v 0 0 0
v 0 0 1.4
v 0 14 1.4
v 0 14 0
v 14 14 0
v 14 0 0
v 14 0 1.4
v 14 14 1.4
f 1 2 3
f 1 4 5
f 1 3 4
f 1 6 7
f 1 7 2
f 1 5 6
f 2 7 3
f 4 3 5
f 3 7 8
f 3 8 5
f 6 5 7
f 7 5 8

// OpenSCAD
/* Warning, this is a very basic generator with a lot of approximation 
input data : [LQFP, XBX, 14x14x1.4mm, 80, , B, C04-00054B]
generated by com.zoubworld.electronics.cad.model3d.Basic
Date : Sun Feb 15 10:50:48 CET 2026
*/

//body
color("black")
translate([0,0,0])
cube([14.0,14.0,1.4], center=false);
